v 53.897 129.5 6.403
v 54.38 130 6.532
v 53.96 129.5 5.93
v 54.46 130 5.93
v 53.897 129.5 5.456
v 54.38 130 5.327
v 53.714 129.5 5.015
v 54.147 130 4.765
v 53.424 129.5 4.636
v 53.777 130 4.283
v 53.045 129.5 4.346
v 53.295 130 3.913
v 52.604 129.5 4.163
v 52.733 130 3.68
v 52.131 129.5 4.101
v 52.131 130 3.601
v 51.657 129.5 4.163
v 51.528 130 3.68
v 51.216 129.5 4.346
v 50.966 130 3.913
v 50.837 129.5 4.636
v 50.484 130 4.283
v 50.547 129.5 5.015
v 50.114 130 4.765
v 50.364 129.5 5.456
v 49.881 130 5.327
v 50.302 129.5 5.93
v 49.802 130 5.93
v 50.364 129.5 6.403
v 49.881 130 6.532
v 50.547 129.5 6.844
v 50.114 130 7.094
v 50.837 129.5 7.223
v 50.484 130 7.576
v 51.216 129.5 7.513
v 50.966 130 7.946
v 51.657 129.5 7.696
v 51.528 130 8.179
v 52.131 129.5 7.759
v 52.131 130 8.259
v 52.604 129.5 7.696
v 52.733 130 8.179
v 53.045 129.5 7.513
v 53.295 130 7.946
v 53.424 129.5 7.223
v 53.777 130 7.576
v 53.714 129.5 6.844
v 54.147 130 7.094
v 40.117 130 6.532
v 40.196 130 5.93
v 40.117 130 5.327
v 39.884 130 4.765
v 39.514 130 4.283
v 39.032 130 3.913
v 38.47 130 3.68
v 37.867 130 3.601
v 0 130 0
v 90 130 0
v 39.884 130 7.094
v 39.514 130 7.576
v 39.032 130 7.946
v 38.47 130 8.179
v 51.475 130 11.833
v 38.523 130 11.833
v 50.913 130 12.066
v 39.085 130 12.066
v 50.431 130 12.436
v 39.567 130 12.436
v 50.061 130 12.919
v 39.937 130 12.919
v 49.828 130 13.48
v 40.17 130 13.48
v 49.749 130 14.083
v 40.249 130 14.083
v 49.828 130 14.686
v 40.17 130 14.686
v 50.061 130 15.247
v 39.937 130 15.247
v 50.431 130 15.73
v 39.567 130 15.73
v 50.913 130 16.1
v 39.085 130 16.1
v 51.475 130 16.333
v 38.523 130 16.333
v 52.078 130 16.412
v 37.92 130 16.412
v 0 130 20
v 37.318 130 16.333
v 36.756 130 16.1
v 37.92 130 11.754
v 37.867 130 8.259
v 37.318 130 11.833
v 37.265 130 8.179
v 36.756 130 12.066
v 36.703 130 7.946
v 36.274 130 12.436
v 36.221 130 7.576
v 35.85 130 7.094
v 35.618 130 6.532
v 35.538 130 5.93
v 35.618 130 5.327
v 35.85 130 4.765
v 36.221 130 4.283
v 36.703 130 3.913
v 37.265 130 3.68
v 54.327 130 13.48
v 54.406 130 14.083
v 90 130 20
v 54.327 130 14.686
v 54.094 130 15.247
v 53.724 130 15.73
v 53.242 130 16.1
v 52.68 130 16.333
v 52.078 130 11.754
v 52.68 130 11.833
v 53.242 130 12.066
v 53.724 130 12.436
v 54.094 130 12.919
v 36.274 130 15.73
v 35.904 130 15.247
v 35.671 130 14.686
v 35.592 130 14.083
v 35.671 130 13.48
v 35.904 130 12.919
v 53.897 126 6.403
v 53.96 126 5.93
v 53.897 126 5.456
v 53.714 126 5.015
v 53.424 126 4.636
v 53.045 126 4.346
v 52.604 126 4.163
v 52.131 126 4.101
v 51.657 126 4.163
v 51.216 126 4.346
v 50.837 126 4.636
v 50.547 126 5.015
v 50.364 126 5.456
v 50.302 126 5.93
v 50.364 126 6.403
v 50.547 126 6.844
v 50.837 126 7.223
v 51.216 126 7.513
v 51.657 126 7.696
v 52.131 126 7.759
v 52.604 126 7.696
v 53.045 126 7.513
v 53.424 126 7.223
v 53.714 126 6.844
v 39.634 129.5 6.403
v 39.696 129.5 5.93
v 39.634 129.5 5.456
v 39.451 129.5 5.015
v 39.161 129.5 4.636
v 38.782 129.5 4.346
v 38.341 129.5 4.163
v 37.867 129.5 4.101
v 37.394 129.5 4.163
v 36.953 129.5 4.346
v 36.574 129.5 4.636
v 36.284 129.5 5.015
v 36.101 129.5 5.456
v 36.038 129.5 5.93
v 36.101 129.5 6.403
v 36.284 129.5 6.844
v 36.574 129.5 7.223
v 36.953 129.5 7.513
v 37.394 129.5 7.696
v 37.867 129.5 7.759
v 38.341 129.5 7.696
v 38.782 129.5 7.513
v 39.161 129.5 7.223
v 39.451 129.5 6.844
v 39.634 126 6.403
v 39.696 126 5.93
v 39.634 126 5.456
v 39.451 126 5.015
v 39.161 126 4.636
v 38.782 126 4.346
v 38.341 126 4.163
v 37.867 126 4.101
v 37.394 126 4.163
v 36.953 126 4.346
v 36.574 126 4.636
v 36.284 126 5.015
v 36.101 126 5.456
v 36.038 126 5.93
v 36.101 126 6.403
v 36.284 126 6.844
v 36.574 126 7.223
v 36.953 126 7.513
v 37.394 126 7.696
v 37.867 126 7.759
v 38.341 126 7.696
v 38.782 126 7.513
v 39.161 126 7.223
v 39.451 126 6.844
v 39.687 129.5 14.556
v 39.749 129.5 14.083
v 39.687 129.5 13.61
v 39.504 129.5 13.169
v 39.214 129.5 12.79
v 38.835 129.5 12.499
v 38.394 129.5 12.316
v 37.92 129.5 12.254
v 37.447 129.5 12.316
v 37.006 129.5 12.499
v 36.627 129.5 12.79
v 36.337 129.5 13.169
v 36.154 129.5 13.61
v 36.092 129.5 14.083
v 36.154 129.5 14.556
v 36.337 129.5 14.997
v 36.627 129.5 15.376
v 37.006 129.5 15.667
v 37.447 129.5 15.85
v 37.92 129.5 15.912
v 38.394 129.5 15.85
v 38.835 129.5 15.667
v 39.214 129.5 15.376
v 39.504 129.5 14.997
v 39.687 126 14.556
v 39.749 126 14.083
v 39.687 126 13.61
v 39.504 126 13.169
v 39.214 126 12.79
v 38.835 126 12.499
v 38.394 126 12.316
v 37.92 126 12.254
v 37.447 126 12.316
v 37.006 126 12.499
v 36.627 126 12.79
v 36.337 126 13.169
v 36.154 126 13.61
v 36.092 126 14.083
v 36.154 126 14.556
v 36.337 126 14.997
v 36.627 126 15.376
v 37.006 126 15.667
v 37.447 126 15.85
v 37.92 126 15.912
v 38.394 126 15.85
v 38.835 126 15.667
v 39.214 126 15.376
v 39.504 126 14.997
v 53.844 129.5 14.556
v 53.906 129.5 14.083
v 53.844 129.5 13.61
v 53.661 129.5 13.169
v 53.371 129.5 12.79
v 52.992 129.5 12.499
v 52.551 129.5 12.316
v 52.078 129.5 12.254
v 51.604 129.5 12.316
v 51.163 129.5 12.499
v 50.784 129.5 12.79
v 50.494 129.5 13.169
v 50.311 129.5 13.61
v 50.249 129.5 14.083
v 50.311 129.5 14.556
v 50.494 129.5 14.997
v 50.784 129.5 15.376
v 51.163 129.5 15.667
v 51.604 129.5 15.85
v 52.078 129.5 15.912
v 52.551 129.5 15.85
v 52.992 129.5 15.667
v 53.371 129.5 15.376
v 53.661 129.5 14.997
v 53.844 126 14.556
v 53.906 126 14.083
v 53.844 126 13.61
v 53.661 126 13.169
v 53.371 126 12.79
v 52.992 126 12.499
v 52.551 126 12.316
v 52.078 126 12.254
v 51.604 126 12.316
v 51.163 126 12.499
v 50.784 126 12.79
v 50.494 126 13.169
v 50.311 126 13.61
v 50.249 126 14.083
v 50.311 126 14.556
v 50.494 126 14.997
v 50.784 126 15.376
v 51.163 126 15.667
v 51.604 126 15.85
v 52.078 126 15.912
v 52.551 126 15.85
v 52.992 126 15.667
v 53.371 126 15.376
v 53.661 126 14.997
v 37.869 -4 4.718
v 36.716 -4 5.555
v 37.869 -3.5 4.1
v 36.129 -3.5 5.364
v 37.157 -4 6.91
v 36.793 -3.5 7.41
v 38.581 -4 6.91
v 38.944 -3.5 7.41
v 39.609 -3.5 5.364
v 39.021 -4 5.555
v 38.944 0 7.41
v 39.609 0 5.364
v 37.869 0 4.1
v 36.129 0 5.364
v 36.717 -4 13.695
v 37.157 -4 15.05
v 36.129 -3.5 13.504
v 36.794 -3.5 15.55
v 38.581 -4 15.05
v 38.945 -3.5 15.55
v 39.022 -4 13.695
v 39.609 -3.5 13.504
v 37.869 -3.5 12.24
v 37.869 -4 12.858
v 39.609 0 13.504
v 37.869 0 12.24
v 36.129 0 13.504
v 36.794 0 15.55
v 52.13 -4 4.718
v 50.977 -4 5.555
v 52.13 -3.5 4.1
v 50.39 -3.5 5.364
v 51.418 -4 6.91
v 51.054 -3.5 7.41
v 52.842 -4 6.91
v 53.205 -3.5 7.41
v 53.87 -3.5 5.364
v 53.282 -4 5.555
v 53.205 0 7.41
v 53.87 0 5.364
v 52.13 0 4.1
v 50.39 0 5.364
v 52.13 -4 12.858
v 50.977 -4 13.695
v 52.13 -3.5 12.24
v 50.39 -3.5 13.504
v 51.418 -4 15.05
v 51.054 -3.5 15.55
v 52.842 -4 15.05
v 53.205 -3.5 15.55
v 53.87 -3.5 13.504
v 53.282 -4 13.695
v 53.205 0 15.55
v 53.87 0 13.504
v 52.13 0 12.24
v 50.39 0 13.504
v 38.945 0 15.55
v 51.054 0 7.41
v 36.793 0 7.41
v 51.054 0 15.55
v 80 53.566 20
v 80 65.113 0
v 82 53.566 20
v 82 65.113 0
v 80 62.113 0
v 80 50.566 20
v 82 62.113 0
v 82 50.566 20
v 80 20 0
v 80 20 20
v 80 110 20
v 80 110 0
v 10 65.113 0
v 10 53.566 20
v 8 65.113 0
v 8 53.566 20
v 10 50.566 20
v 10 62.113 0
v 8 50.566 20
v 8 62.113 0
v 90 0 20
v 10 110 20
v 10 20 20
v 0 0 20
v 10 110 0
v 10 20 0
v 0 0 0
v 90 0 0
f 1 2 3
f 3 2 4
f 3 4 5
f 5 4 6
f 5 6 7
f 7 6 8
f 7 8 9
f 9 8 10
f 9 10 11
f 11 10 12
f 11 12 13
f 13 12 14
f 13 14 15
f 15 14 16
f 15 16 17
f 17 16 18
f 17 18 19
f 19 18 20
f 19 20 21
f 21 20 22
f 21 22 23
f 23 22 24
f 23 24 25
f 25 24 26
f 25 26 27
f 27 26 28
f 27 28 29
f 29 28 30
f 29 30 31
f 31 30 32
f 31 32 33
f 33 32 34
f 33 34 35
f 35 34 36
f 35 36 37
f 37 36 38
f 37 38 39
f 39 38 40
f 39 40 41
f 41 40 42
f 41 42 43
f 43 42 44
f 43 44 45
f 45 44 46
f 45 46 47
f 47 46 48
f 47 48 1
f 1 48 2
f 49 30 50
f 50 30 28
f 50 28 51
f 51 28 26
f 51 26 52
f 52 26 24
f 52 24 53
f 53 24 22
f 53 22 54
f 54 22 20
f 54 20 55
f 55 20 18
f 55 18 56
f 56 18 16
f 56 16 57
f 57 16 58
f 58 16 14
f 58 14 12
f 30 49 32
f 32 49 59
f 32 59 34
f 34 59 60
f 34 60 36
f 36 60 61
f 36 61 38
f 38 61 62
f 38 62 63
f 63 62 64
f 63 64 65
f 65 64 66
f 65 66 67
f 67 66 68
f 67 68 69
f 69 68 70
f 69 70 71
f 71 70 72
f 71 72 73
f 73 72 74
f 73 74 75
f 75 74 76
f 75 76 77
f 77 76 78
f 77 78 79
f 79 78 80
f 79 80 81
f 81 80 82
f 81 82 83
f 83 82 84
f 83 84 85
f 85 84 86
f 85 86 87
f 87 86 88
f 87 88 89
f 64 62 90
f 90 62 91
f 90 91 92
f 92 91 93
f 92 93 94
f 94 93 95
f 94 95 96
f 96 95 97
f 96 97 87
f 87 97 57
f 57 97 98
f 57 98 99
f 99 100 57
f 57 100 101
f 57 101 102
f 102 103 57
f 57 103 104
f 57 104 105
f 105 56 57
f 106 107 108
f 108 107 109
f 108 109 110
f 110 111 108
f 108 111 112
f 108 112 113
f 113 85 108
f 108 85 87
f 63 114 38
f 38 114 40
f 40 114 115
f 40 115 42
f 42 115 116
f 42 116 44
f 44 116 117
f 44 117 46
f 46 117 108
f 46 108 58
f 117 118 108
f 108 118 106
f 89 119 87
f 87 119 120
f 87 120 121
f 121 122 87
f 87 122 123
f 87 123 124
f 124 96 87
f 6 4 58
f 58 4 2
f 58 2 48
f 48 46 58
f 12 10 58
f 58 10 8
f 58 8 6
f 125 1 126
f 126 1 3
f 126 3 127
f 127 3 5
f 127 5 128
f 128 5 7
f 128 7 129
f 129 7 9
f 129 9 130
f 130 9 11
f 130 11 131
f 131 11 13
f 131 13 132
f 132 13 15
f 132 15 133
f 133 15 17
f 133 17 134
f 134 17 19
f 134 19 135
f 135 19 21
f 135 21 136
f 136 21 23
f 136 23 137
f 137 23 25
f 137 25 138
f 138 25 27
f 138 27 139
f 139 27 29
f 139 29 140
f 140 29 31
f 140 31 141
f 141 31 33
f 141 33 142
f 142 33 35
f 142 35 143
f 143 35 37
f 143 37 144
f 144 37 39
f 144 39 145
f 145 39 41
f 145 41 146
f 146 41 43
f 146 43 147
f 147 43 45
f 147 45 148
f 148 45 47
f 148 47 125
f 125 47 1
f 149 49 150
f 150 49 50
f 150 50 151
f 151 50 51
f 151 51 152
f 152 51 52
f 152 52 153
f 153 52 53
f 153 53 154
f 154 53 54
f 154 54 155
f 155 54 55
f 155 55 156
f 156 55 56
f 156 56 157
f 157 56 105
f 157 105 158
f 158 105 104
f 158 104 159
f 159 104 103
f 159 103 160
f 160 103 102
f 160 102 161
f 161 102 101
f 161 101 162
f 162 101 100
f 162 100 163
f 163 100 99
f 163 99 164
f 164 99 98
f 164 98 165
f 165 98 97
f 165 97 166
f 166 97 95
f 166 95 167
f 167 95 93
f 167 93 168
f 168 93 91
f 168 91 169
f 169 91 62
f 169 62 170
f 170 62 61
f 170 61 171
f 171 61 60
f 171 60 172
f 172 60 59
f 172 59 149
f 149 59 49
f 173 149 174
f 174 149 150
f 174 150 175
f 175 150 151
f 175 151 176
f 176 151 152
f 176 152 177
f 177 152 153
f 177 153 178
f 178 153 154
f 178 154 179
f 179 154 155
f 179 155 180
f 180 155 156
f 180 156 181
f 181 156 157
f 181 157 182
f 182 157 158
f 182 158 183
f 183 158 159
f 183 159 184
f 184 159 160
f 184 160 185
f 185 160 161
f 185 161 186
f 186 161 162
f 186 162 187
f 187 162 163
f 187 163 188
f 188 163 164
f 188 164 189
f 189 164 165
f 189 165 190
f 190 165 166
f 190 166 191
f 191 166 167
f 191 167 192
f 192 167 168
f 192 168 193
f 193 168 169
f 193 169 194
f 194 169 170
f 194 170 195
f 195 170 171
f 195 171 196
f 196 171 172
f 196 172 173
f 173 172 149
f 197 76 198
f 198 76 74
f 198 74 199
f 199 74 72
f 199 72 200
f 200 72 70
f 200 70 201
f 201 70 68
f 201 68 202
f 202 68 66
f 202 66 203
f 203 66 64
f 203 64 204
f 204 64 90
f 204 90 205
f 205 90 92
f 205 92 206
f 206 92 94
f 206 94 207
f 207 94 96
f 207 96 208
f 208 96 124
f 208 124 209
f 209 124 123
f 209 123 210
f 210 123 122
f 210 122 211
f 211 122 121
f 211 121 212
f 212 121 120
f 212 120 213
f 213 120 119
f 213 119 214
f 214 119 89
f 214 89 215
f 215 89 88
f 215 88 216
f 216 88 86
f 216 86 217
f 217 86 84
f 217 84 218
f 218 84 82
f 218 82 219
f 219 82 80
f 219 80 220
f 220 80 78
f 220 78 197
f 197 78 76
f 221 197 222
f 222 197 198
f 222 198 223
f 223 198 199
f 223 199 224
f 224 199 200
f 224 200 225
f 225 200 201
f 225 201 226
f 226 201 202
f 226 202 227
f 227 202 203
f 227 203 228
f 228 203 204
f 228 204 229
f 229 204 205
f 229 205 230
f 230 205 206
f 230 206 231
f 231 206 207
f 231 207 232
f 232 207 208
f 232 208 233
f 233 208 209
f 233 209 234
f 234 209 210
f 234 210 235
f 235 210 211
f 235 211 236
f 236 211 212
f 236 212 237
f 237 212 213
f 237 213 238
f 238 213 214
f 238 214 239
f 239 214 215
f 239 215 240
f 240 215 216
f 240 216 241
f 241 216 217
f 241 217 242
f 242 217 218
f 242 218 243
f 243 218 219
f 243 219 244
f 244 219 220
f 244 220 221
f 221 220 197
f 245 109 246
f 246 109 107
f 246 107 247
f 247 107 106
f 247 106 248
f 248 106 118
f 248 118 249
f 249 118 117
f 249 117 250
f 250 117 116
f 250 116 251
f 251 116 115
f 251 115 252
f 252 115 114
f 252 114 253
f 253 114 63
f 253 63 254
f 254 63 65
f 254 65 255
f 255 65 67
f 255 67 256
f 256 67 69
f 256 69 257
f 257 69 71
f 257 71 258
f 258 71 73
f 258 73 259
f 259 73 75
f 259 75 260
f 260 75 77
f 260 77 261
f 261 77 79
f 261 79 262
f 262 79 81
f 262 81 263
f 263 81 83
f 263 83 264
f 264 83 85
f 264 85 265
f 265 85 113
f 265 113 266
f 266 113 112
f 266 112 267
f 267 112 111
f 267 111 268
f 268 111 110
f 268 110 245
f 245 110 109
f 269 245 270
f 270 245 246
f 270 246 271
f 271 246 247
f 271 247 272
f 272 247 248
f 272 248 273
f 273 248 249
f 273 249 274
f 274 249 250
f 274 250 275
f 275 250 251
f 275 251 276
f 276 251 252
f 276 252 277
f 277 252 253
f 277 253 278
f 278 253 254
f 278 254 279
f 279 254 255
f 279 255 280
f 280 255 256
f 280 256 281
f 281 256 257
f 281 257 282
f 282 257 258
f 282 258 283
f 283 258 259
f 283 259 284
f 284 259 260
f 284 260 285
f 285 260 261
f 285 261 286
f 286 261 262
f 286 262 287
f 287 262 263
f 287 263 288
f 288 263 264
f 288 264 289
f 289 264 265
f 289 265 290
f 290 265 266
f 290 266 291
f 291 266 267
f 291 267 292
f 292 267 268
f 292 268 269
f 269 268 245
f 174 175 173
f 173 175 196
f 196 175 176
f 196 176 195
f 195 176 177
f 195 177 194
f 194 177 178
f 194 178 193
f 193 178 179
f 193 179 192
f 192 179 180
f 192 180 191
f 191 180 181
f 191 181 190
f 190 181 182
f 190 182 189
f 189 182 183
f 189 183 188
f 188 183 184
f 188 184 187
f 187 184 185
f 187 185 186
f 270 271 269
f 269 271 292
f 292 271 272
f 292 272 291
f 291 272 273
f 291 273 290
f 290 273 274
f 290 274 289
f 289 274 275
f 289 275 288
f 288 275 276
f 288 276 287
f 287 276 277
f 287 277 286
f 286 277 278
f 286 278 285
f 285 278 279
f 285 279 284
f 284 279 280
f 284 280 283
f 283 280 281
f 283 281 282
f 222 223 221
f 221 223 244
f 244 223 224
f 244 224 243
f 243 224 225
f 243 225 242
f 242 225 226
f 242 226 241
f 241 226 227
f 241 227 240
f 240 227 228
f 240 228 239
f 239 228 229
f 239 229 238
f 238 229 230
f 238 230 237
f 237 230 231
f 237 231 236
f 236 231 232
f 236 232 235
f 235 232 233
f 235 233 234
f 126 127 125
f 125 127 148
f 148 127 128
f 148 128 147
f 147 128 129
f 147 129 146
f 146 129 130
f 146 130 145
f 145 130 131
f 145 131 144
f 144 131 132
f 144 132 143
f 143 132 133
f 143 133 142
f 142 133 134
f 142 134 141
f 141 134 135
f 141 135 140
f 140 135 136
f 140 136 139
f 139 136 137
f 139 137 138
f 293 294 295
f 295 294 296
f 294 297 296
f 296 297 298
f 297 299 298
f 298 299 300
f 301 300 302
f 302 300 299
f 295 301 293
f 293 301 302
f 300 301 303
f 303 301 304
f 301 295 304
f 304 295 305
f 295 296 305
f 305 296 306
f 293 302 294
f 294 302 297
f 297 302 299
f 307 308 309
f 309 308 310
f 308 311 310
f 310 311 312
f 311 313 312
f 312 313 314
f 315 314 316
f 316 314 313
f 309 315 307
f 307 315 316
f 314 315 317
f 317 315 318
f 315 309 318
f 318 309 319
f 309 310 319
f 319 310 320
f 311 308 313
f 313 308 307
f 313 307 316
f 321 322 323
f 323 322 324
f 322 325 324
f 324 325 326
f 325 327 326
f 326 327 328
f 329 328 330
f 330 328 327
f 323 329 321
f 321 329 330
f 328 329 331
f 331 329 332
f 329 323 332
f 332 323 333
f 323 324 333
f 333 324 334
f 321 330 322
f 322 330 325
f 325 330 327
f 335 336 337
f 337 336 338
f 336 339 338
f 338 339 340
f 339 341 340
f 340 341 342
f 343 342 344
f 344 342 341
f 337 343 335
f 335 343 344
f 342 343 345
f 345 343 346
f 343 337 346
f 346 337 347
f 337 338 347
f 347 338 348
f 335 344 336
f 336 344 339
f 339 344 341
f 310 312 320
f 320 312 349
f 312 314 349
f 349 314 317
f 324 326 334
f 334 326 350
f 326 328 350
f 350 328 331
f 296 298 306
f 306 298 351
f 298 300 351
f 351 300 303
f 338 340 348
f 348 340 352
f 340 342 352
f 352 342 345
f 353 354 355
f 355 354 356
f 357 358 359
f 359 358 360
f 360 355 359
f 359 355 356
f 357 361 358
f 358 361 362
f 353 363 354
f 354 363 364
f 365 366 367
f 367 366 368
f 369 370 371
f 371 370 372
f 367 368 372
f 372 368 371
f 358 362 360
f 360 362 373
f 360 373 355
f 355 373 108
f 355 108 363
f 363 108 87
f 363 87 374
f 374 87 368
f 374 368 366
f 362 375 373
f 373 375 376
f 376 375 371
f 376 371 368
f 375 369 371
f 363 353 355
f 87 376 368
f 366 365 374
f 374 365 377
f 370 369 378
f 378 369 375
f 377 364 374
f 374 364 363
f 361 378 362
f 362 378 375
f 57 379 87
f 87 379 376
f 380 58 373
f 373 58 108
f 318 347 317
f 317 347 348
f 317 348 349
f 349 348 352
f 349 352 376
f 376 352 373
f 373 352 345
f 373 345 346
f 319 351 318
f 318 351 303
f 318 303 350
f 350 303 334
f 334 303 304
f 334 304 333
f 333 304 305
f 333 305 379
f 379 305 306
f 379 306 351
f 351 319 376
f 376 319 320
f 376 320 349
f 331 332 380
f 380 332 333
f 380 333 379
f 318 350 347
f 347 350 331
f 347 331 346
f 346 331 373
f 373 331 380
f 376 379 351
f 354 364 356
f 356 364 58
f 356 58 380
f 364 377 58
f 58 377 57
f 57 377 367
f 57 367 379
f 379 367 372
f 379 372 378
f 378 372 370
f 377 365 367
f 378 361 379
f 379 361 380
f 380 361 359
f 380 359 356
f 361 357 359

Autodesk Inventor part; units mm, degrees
ref_plane "YZ Plane" through (0, 0, 0) normal (1, 0, 0) x (0, 1, 0)
ref_plane "XZ Plane" through (0, 0, 0) normal (0, 1, 0) x (-1, 0, 0)
ref_plane "XY Plane" through (0, 0, 0) normal (0, 0, 1) x (1, 0, 0)
sketch "Sketch1" plane through (0, 0, 0) normal (0, 0, 1) x (1, 0, 0)
  line L0 (0, 0) -> (90, 0)
  line L1 (90, 0) -> (90, 130)
  line L2 (90, 130) -> (0, 130)
  line L3 (0, 130) -> (0, 0)
  line L4 (10, 20) -> (80, 20)
  line L5 (80, 20) -> (80, 110)
  line L6 (80, 110) -> (10, 110)
  line L7 (10, 110) -> (10, 20)
  dimension "d0" = 90
  dimension "d1" = 130
  dimension "d2" = 70
  dimension "d3" = 90
  dimension "d16" = 20
  dimension "d17" = 20
  dimension "d18" = 10
extrude "Extrusion1" add sketch "Sketch1" along normal blind 20
sketch "Sketch2" plane through (10, 20, 0) normal (1, 0, 0) x (0, 0, -1)
  line L0 (0, 90) -> (0, 0) projected
  line L1 (0, 42.1132) -> (-20, 30.5662)
  line L2 (-20, 110) -> (-20, -20) projected
  line L3 (0, 42.1132) -> (23.094, 42.1132) construction
  line L4 (-20, 30.5662) -> (-20, 33.5662)
  line L5 (-20, 33.5662) -> (0, 45.1132)
  line L6 (0, 42.1132) -> (0, 45.1132)
  point P0 (-20, 0)
  point P1 (0, -20)
  dimension "d6" = 210
  dimension "d7" = 3
  dimension "d8" = 26.4711
extrude "Extrusion2" cut sketch "Sketch2" against normal blind 2
sketch "Sketch3" plane through (80, 20, 0) normal (-1, 0, 0) x (0, 0, 1)
  line L0 (0, 0) -> (0, 90) projected
  line L1 (20, 90) -> (20, 0) projected
  line L2 (0, 42.1132) -> (20, 30.5662)
  line L3 (0, 42.1132) -> (23.094, 42.1132) construction
  line L4 (20, 30.5662) -> (20, 33.5662)
  line L5 (20, 33.5662) -> (0, 45.1132)
  line L6 (0, 42.1132) -> (0, 45.1132)
  point P0 (0, -20)
  dimension "d11" = 30
  dimension "d12" = 3
  dimension "d13" = 26.4711
extrude "Extrusion3" cut sketch "Sketch3" against normal blind 2
sketch "Sketch4" plane through (0, 0, 0) normal (0, -1, 0) x (1, 0, 0)
  line L0 (0, 0) -> (90, 0) projected
  line L1 (90, 0) -> (90, 20) projected
  line L2 (0, 20) -> (90, 20) projected
  line L3 (0, 0) -> (0, 20) projected
  line L4 (55, 3) -> (35, 3)
  line L5 (35, 3) -> (35, 17)
  line L6 (35, 17) -> (55, 17)
  line L7 (55, 17) -> (55, 3)
  line L8 (53.2053, 7.41) -> (53.87, 5.3643)
  line L9 (53.87, 5.3643) -> (52.1298, 4.1)
  line L10 (52.1298, 4.1) -> (50.3897, 5.3643)
  line L11 (50.3897, 5.3643) -> (51.0543, 7.41)
  line L12 (51.0543, 7.41) -> (53.2053, 7.41)
  line L13 (38.9443, 7.41) -> (39.609, 5.3643)
  line L14 (39.609, 5.3643) -> (37.8689, 4.1)
  line L15 (37.8689, 4.1) -> (36.1287, 5.3643)
  line L16 (36.1287, 5.3643) -> (36.7934, 7.41)
  line L17 (36.7934, 7.41) -> (38.9443, 7.41)
  line L18 (38.9447, 15.55) -> (39.6093, 13.5043)
  line L19 (39.6093, 13.5043) -> (37.8692, 12.24)
  line L20 (37.8692, 12.24) -> (36.129, 13.5043)
  line L21 (36.129, 13.5043) -> (36.7937, 15.55)
  line L22 (36.7937, 15.55) -> (38.9447, 15.55)
  line L23 (53.2053, 15.55) -> (53.87, 13.5043)
  line L24 (53.87, 13.5043) -> (52.1298, 12.24)
  line L25 (52.1298, 12.24) -> (50.3897, 13.5043)
  line L26 (50.3897, 13.5043) -> (51.0543, 15.55)
  line L27 (51.0543, 15.55) -> (53.2053, 15.55)
  point P0 (52.1298, 5.9297)
  point P1 (37.8689, 5.9297)
  point P2 (37.8692, 14.0697)
  point P3 (52.1298, 14.0697)
  dimension "d19" = 20
  dimension "d20" = 14
  dimension "d21" = 3
  dimension "d22" = 3
  dimension "d23" = 35
  dimension "d24" = 35
  dimension "d25" = 1.45
  dimension "d26" = 1.45
  dimension "d27" = 1.1
  dimension "d28" = 1.1
  dimension "d29" = 12.11
  dimension "d30" = 1.13
  dimension "d31" = 1.13
  dimension "d32" = 4.83
  dimension "d33" = 4.83
  dimension "d34" = 1.129
  dimension "d35" = 1.1287
extrude "Extrusion4" add sketch "Sketch4" along normal blind 4 contours L8 L9 L10 L11 L12 | L13 L14 L15 L16 L17 | L18 L19 L20 L21 L22 | L23 L24 L25 L26 L27
chamfer "Chamfer1" distance 0.5 angle 45 20 edges at (52.1298, -4, 15.55) (50.722, -4, 14.5272) (51.2597, -4, 12.8722) (52.9999, -4, 12.8722) (53.5377, -4, 14.5272) (52.1298, -4, 7.41) (53.5377, -4, 6.3872) (52.9999, -4, 4.7322) (51.2597, -4, 4.7322) (50.722, -4, 6.3872) (39.277, -4, 14.5272) (38.7393, -4, 12.8722) (36.9991, -4, 12.8722) (36.4613, -4, 14.5272) (37.8692, -4, 15.55) (37.8689, -4, 7.41) (39.2767, -4, 6.3872) (38.7389, -4, 4.7322) (36.9988, -4, 4.7322) (36.461, -4, 6.3872)
sketch "Sketch5" plane through (0, 130, 0) normal (0, 1, 0) x (1, 0, 0)
  line L0 (90, 0) -> (0, 0) projected
  line L1 (0, 0) -> (0, -20) projected
  line L2 (90, -20) -> (0, -20) projected
  line L3 (90, 0) -> (90, -20) projected
  line L4 (55, -17) -> (35, -17)
  line L5 (35, -17) -> (35, -3)
  line L6 (35, -3) -> (55, -3)
  line L7 (55, -3) -> (55, -17)
  line L8 (52.2861, -15.9) -> (50.4139, -14.8429)
  line L9 (50.4139, -14.8429) -> (50.8408, -12.7357)
  line L10 (50.8408, -12.7357) -> (52.9767, -12.4905)
  line L11 (52.9767, -12.4905) -> (53.87, -14.4461)
  line L12 (53.87, -14.4461) -> (52.2861, -15.9)
  line L13 (37.7119, -15.9) -> (36.128, -14.4461)
  line L14 (36.128, -14.4461) -> (37.0213, -12.4905)
  line L15 (37.0213, -12.4905) -> (39.1572, -12.7357)
  line L16 (39.1572, -12.7357) -> (39.5841, -14.8429)
  line L17 (39.5841, -14.8429) -> (37.7119, -15.9)
  line L18 (37.8674, -7.7585) -> (36.128, -6.4948)
  line L19 (36.128, -6.4948) -> (36.7924, -4.45)
  line L20 (36.7924, -4.45) -> (38.9424, -4.45)
  line L21 (38.9424, -4.45) -> (39.6068, -6.4948)
  line L22 (39.6068, -6.4948) -> (37.8674, -7.7585)
  line L23 (52.1306, -7.7585) -> (50.3912, -6.4948)
  line L24 (50.3912, -6.4948) -> (51.0556, -4.45)
  line L25 (51.0556, -4.45) -> (53.2056, -4.45)
  line L26 (53.2056, -4.45) -> (53.87, -6.4948)
  line L27 (53.87, -6.4948) -> (52.1306, -7.7585)
  circle A0 centre (52.0775, -14.083) radius 1.8289
  circle A1 centre (37.9205, -14.083) radius 1.8289
  circle A2 centre (37.8674, -5.9296) radius 1.8289
  circle A3 centre (52.1306, -5.9296) radius 1.8289
  dimension "d41" = 20
  dimension "d42" = 14
  dimension "d43" = 3
  dimension "d44" = 3
  dimension "d45" = 35
  dimension "d46" = 35
  dimension "d62" = 2.15
  dimension "d63" = 2.15
  dimension "d64" = 2.15
  dimension "d65" = 2.15
  dimension "d66" = 1.13
  dimension "d67" = 1.13
  dimension "d68" = 1.128
  dimension "d69" = 1.1
  dimension "d70" = 1.1
  dimension "d71" = 1.45
  dimension "d72" = 1.45
  dimension "d73" = 1.128
extrude "Extrusion5" cut sketch "Sketch5" against normal blind 4 contours A0 L8 | L8 L9 L10 L11 L12 | L12 A0 | A0 L9 | L11 A0 | A0 L10 | A1 L13 | L13 L14 L15 L16 L17 | L17 A1 | A1 L14 | L16 A1 | A1 L15 | A2 L18 | L18 L19 L20 L21 L22 | L22 A2 | A2 L19 | L21 A2 | A2 L20 | A3 L23 | L23 L24 L25 L26 L27 | L27 A3 | A3 L24 | L26 A3 | A3 L25
chamfer "Chamfer2" distance 0.5 angle 45 4 edges at (50.2486, 130, 14.083) (36.0916, 130, 14.083) (36.0385, 130, 5.9296) (50.3017, 130, 5.9296)
properties part number "Frame V2"
